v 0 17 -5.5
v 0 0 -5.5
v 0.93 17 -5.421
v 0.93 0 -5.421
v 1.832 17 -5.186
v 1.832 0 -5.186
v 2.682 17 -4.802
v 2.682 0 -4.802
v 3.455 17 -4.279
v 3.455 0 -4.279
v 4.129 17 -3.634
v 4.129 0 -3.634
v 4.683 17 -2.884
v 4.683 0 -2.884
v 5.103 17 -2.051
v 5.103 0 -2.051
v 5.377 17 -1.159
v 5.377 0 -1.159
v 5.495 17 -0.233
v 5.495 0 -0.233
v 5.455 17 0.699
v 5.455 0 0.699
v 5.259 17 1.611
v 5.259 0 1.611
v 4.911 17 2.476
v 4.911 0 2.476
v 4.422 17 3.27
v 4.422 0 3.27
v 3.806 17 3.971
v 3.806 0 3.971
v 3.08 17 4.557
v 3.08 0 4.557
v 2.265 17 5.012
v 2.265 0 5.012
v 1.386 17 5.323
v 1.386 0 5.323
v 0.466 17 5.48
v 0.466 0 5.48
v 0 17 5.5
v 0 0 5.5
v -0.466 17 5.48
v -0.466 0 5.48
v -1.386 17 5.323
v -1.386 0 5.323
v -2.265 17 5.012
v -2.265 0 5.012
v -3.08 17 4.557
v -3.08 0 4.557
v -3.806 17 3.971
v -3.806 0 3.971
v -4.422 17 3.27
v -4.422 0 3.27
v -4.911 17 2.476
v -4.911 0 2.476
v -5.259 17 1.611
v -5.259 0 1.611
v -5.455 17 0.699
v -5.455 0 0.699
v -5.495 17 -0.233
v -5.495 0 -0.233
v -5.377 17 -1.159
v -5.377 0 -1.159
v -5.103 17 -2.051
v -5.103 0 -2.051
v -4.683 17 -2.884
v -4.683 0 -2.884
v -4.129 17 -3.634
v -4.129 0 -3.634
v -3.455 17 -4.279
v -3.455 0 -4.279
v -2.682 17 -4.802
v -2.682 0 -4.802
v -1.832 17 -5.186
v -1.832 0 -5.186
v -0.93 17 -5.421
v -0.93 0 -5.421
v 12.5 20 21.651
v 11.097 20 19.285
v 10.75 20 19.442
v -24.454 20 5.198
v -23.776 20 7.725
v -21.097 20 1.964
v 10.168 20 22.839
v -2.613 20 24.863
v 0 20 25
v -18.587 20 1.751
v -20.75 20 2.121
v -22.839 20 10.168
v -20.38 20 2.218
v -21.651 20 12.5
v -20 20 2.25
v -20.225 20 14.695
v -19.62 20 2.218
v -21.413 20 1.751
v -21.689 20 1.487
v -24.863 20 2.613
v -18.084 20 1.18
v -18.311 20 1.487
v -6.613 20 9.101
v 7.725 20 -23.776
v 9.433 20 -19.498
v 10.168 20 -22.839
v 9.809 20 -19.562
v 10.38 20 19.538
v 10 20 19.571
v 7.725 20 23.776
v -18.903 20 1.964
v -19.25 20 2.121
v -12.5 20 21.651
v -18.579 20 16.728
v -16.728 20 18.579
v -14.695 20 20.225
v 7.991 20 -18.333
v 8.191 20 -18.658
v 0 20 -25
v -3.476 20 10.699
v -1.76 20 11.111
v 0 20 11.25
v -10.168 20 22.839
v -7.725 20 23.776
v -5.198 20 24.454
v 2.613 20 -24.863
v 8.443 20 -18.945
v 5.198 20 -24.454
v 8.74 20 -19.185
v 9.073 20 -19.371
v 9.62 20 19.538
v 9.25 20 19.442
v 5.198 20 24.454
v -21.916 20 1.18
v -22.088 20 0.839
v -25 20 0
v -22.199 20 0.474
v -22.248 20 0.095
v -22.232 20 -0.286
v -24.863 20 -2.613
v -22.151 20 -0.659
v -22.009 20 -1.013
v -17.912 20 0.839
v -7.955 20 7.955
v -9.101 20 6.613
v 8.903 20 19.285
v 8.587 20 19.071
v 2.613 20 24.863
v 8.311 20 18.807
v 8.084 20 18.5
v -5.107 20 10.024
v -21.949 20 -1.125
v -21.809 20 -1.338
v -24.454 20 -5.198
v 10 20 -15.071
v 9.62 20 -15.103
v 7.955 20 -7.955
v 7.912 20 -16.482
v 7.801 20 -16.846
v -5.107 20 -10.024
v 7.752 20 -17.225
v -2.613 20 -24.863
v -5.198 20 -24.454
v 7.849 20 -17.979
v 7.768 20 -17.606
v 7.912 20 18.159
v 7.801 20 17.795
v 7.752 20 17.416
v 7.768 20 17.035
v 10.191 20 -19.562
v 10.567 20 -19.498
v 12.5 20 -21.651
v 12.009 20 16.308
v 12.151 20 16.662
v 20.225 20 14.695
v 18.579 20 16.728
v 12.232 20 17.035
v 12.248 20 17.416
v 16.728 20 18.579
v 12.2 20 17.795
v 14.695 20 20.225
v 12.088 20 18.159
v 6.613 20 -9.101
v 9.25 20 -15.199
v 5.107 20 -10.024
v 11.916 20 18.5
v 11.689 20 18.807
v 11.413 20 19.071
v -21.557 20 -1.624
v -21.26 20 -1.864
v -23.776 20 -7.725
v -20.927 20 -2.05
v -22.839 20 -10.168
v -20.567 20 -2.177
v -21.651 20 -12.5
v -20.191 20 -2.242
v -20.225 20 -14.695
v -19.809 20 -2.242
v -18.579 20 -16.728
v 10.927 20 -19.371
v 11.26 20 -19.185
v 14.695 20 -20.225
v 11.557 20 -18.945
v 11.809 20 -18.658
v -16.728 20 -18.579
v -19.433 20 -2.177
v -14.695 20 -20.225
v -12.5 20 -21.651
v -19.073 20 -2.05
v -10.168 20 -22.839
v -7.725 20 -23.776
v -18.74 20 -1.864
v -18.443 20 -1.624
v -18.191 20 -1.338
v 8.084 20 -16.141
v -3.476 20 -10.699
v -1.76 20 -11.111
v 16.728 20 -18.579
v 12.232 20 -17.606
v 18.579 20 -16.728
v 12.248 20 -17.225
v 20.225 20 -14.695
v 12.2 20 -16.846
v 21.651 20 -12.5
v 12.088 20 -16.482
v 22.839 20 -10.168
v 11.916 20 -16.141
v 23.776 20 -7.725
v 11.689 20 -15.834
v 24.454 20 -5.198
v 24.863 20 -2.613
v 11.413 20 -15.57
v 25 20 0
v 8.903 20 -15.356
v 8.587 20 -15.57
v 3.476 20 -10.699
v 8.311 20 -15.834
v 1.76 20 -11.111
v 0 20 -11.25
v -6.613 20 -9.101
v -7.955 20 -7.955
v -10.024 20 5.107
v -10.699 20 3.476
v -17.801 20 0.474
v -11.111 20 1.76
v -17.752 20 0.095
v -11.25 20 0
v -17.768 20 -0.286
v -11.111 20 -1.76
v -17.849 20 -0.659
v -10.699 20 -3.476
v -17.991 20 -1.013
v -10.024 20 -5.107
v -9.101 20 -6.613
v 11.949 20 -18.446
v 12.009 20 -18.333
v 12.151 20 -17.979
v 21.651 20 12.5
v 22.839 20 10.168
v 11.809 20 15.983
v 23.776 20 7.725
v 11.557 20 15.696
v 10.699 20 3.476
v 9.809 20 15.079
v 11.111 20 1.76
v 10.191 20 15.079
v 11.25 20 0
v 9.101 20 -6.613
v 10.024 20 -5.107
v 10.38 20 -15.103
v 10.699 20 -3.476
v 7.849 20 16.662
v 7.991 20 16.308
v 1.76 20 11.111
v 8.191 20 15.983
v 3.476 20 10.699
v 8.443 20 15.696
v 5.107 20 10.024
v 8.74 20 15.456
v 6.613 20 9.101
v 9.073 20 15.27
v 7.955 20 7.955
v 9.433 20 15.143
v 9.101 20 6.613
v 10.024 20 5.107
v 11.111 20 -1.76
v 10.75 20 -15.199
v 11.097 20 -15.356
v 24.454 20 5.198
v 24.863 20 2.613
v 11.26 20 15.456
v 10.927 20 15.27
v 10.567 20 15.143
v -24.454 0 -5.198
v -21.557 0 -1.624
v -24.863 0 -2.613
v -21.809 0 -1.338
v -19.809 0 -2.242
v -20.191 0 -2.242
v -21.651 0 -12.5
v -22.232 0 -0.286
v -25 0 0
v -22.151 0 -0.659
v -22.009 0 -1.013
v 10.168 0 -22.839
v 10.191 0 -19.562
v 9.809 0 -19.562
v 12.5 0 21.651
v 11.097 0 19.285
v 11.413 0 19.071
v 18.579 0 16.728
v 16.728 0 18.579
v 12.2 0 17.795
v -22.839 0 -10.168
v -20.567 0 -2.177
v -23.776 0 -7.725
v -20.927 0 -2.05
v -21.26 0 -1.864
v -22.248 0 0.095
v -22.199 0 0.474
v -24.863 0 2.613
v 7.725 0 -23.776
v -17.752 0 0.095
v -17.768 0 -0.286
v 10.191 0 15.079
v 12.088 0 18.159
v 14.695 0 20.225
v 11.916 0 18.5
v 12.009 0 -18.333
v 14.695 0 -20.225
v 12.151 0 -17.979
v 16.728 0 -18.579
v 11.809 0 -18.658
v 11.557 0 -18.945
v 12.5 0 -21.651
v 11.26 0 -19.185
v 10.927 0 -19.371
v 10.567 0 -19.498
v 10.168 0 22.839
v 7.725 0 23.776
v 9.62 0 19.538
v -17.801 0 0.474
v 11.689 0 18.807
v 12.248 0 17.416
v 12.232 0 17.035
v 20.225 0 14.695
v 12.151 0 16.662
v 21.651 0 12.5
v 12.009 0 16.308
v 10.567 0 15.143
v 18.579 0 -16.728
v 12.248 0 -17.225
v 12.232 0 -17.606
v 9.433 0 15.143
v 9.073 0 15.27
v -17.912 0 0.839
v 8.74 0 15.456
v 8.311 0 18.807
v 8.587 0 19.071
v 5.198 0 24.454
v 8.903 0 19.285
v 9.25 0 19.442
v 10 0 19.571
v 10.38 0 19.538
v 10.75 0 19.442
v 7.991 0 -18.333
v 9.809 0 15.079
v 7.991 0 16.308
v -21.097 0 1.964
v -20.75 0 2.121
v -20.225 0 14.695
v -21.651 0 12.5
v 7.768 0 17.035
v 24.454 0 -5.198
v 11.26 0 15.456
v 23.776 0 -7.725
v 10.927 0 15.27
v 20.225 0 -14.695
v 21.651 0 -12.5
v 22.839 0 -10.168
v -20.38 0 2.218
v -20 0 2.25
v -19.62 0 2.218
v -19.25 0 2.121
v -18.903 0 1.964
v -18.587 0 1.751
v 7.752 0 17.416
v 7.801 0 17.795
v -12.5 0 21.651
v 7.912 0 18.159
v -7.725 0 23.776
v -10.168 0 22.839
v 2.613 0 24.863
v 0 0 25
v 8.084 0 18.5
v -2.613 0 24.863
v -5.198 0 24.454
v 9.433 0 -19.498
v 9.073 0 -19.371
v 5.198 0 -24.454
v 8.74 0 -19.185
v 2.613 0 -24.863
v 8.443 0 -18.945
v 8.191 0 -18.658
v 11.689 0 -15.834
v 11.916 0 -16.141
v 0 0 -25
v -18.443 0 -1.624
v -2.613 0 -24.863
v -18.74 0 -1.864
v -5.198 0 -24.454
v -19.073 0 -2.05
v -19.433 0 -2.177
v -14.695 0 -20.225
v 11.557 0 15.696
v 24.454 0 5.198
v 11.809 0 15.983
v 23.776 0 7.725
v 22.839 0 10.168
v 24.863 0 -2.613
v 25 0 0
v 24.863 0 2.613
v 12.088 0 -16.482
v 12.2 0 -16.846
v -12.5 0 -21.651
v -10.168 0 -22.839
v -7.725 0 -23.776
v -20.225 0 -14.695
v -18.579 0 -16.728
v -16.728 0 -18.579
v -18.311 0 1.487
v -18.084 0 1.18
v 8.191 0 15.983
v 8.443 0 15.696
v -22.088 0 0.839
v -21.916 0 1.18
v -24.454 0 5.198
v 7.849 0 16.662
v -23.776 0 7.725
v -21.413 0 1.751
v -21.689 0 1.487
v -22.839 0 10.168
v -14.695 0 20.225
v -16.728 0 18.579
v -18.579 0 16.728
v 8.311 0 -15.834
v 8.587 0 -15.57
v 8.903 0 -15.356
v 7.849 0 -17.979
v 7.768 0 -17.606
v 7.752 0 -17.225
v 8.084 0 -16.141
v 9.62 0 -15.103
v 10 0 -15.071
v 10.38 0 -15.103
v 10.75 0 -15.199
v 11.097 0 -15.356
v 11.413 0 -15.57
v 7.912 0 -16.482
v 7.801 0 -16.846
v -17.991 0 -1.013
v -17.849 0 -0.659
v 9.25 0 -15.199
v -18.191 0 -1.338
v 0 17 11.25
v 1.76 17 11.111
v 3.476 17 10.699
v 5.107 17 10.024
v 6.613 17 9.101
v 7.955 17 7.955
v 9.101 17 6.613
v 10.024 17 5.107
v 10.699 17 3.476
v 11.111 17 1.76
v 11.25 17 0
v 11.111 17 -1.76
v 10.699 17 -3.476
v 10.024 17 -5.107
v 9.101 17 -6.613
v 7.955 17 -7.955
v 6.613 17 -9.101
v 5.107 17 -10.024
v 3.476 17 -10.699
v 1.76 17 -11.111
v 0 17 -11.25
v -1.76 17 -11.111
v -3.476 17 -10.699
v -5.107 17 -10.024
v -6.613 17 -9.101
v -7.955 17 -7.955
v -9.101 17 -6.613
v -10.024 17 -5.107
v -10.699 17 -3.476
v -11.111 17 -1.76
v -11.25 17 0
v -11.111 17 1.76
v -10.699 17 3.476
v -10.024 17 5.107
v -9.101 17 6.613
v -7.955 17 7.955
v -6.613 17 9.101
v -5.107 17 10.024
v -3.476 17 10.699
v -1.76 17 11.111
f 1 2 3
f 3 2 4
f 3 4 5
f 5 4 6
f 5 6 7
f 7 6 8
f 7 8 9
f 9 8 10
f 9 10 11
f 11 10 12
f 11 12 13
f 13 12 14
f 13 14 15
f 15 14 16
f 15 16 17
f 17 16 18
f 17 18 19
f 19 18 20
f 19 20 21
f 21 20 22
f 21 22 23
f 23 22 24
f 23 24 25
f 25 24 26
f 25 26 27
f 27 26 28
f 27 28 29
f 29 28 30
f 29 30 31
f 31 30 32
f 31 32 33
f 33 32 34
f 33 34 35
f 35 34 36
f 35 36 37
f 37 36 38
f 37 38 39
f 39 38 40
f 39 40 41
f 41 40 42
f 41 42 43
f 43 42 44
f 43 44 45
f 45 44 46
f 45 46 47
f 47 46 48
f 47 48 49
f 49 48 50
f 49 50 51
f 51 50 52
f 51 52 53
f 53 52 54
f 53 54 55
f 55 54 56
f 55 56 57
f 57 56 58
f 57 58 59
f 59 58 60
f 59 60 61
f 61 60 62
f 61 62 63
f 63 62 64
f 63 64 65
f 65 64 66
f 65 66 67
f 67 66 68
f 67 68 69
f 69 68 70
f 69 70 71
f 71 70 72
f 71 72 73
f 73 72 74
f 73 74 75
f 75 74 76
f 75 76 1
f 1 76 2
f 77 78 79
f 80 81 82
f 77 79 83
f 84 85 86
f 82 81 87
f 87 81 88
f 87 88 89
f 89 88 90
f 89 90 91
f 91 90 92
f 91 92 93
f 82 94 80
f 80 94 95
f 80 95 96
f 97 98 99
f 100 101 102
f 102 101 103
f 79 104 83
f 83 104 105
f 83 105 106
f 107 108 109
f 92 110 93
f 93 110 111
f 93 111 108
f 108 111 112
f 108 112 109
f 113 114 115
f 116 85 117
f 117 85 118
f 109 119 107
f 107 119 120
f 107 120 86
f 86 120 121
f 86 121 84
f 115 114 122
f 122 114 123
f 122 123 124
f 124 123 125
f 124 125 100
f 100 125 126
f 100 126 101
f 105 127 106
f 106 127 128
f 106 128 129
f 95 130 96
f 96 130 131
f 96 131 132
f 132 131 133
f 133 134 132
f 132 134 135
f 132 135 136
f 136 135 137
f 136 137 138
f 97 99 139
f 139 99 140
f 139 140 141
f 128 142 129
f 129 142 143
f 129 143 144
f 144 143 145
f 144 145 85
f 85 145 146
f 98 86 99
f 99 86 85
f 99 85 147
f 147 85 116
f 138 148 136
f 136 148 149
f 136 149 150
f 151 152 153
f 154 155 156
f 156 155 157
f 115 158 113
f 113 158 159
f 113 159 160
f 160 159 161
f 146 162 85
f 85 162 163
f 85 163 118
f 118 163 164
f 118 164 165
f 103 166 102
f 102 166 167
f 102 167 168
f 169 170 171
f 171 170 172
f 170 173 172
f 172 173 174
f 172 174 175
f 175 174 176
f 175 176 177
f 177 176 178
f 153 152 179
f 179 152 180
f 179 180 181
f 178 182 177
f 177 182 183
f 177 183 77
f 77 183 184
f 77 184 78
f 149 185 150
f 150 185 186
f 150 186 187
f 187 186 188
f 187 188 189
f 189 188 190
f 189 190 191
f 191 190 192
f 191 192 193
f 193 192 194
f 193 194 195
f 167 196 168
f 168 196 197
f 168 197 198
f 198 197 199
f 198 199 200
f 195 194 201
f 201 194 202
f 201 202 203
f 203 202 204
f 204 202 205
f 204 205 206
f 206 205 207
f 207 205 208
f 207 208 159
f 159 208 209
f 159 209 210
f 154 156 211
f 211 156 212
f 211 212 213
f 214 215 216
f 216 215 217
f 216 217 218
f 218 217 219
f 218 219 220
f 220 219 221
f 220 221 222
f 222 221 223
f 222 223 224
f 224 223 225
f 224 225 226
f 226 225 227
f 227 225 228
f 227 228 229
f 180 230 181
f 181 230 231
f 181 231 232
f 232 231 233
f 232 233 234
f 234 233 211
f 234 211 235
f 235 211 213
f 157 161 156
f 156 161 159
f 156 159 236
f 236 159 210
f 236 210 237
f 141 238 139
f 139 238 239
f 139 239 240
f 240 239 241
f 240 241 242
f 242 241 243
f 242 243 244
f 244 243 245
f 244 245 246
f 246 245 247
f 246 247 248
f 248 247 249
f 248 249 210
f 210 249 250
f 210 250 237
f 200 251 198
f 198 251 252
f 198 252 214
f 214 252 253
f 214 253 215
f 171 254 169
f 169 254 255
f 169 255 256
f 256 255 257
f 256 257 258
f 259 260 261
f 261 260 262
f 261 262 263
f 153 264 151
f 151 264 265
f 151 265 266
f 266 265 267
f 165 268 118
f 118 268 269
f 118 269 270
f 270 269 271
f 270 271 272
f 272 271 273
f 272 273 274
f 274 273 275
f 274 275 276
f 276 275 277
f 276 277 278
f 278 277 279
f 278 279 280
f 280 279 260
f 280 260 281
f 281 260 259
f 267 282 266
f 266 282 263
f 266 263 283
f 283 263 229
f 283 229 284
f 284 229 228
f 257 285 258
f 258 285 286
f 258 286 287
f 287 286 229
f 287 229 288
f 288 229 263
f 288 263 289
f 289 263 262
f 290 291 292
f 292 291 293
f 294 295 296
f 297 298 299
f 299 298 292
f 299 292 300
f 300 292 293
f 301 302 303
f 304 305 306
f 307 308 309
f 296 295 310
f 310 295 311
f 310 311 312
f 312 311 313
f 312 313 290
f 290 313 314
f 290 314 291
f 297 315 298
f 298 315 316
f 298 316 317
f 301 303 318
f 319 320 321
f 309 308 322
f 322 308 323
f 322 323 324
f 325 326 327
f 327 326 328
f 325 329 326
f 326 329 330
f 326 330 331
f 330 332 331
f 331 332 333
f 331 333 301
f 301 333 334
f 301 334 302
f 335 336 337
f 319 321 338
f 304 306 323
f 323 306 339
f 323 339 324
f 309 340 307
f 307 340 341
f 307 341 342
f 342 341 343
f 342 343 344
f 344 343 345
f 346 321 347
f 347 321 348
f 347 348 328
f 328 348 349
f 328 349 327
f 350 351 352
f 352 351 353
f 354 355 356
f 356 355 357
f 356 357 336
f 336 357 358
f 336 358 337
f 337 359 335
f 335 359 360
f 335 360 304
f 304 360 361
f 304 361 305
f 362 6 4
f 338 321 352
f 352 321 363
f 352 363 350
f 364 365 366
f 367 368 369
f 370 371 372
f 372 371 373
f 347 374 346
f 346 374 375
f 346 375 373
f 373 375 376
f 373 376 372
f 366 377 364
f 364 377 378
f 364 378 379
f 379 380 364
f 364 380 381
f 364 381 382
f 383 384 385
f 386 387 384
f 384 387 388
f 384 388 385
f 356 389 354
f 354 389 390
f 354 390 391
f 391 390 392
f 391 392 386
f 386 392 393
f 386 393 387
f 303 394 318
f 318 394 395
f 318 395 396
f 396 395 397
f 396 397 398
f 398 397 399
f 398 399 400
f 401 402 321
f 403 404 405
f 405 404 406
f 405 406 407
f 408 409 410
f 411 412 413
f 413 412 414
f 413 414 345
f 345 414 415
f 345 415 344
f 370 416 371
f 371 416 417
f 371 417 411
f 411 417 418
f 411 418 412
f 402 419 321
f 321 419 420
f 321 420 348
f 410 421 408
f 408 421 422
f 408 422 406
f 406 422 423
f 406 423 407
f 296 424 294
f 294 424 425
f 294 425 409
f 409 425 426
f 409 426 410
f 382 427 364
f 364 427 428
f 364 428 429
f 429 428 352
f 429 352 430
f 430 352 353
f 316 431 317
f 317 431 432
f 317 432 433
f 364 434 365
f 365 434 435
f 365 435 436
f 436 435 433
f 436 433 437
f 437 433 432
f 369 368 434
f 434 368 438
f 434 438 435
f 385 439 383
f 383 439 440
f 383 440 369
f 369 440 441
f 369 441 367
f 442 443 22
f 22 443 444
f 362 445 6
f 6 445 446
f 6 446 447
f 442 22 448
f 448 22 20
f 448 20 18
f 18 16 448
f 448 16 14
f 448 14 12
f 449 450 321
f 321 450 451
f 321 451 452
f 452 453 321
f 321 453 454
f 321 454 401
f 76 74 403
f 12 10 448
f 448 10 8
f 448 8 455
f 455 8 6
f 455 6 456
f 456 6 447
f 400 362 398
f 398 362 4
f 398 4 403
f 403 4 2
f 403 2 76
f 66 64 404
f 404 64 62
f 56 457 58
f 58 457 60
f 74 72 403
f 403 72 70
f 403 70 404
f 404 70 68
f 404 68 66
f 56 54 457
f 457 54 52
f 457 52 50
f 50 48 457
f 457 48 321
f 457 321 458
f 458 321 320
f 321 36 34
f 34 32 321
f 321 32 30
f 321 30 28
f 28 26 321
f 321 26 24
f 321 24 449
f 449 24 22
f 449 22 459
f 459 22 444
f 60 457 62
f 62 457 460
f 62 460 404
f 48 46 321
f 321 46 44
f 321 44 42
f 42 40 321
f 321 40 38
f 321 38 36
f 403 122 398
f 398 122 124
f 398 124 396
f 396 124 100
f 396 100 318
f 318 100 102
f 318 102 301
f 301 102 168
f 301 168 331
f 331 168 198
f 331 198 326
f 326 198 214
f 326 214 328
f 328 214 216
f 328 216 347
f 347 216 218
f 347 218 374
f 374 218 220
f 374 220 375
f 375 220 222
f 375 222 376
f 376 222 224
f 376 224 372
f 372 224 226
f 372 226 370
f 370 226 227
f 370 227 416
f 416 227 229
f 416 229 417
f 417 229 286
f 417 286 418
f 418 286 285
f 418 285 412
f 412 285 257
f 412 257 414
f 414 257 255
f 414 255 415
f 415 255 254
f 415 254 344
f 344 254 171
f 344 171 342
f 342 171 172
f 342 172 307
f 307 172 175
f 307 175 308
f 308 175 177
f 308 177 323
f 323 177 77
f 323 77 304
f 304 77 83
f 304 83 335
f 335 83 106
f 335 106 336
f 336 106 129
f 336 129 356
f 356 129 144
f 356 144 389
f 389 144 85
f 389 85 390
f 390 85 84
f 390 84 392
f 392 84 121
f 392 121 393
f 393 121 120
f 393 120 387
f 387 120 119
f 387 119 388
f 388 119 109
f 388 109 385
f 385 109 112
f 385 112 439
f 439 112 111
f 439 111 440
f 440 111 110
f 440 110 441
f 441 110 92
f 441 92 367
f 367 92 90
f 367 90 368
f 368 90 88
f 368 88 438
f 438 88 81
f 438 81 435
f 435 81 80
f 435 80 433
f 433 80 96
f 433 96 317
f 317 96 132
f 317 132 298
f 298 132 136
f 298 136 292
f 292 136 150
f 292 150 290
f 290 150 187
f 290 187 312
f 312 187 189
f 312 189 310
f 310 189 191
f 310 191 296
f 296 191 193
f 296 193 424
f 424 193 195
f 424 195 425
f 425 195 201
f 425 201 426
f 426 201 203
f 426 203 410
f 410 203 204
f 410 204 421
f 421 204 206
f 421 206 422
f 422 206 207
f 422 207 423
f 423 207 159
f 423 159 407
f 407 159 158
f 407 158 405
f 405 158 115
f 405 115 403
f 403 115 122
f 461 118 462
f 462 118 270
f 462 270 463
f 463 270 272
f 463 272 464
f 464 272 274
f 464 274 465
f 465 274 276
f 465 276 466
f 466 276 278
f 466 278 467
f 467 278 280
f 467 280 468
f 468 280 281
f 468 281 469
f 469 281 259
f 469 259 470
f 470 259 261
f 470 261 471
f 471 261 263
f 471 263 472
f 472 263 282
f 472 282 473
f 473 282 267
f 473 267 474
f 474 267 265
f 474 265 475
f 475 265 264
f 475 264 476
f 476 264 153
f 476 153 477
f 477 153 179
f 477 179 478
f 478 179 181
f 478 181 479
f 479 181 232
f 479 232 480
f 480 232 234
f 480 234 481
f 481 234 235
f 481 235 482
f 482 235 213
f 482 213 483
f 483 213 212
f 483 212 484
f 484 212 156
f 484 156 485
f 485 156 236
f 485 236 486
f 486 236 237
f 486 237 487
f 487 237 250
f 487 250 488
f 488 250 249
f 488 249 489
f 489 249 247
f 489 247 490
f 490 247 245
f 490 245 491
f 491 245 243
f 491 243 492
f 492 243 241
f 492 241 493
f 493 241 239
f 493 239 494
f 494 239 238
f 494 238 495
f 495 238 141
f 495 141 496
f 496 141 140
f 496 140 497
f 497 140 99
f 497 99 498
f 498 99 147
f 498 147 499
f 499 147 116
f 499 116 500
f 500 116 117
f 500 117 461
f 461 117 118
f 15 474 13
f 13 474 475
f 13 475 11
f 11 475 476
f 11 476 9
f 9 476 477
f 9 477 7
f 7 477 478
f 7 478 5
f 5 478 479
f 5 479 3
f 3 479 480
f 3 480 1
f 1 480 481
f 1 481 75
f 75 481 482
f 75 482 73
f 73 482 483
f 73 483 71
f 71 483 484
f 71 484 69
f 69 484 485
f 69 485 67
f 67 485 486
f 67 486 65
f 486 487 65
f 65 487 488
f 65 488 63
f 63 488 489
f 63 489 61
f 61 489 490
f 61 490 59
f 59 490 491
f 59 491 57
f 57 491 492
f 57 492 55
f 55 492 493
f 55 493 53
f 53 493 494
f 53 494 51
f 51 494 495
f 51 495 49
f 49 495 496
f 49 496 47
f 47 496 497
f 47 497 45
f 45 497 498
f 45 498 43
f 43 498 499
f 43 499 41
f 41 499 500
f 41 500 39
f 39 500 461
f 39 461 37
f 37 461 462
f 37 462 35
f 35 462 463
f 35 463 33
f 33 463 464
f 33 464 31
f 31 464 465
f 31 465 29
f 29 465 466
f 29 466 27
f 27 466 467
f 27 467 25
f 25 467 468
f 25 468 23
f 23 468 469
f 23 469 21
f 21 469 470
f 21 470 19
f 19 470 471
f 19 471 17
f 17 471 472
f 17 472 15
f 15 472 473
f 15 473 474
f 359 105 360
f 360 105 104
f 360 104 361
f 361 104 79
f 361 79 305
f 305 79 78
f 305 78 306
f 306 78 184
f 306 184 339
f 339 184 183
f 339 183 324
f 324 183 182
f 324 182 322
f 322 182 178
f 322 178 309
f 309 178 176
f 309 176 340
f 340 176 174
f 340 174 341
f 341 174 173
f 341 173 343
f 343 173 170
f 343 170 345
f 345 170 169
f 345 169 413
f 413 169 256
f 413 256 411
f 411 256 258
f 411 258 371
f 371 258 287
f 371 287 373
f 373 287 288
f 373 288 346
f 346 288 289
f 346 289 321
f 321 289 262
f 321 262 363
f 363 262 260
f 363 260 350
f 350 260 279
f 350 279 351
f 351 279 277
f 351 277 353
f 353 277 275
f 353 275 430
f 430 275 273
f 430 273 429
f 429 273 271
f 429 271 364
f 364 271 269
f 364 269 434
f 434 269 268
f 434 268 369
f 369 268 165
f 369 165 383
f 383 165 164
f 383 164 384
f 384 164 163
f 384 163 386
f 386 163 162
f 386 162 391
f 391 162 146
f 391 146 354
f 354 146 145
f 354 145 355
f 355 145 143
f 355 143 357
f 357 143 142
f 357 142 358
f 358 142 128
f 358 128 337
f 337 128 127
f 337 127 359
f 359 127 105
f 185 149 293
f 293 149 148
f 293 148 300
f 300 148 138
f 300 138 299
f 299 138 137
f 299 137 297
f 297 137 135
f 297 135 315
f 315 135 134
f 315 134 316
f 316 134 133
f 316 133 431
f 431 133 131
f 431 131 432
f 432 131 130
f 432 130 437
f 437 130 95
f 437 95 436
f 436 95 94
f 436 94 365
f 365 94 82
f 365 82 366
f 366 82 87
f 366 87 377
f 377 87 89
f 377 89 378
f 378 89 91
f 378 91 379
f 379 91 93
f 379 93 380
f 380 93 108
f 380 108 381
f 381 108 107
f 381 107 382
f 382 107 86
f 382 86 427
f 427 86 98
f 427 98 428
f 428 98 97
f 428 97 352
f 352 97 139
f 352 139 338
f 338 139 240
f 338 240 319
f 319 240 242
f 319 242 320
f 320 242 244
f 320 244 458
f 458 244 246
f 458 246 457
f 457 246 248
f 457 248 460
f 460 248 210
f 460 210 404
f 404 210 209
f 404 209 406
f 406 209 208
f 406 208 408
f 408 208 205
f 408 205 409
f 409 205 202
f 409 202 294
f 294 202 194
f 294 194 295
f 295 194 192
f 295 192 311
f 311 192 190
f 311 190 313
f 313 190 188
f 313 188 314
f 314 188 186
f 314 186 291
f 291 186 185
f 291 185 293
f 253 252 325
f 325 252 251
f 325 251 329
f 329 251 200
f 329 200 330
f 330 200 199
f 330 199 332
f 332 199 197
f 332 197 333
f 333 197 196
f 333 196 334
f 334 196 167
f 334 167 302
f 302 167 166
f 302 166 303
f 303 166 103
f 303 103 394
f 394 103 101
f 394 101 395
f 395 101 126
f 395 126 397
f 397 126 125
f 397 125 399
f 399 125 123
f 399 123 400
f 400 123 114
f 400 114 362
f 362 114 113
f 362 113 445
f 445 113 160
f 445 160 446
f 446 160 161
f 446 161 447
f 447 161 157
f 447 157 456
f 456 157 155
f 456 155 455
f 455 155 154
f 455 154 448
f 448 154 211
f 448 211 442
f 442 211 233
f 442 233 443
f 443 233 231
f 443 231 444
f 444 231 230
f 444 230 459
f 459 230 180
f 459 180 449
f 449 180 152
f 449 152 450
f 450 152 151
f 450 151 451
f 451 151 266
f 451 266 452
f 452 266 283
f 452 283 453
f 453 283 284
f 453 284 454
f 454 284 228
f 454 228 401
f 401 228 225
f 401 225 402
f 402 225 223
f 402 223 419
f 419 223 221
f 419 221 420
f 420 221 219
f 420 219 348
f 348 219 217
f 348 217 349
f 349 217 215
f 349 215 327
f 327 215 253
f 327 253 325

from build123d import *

# Parameters (mm, degrees)
SKETCH1_R           = 25
SKETCH1_R_2         = 5.5
BOSS_EXTRUDE1_DEPTH = 20
SKETCH2_R           = 11.25
CUT_EXTRUDE2_DEPTH  = 3
SKETCH3_R           = 2.25
CUT_EXTRUDE3_DEPTH  = 20
CIRPATTERN1_COUNT   = 3


with BuildPart() as part:
    # Sketch1 → Boss-Extrude1 (new body)
    with BuildSketch(Plane(origin=(0, 0, 0), x_dir=(1, 0, 0), z_dir=(0, 1, 0))):
        with Locations(Location((0, 0, 0), (0, 0, 270))):
            Circle(SKETCH1_R)
        with Locations(Location((0, 0, 0), (0, 0, 270))):
            Circle(SKETCH1_R_2, mode=Mode.SUBTRACT)
    extrude(amount=BOSS_EXTRUDE1_DEPTH)

    # Sketch2 → Cut-Extrude2 (cut)
    with BuildSketch(Plane(origin=(0, 20, 0), x_dir=(1, 0, 0), z_dir=(0, 1, 0))):
        with Locations(Location((0, 0, 0), (0, 0, 270))):
            Circle(SKETCH2_R)
    extrude(amount=-CUT_EXTRUDE2_DEPTH, mode=Mode.SUBTRACT)

    # Sketch3 → Cut-Extrude3 (cut)
    with BuildSketch(Plane(origin=(0, 20, 0), x_dir=(1, 0, 0), z_dir=(0, 1, 0))):
        with Locations(Location((10, -17.320508076, 0), (0, 0, 270))):
            Circle(SKETCH3_R)
    cut_extrude3 = extrude(amount=-CUT_EXTRUDE3_DEPTH, mode=Mode.SUBTRACT)

    # CirPattern1: Cut-Extrude3 ×3 about axis
    cirpattern1_axis = Axis((0, 0, 0), (0, 1, 0))
    for i in range(1, CIRPATTERN1_COUNT):
        add(cut_extrude3.rotate(cirpattern1_axis, i * 360 / CIRPATTERN1_COUNT), mode=Mode.SUBTRACT)


solid = part.part
